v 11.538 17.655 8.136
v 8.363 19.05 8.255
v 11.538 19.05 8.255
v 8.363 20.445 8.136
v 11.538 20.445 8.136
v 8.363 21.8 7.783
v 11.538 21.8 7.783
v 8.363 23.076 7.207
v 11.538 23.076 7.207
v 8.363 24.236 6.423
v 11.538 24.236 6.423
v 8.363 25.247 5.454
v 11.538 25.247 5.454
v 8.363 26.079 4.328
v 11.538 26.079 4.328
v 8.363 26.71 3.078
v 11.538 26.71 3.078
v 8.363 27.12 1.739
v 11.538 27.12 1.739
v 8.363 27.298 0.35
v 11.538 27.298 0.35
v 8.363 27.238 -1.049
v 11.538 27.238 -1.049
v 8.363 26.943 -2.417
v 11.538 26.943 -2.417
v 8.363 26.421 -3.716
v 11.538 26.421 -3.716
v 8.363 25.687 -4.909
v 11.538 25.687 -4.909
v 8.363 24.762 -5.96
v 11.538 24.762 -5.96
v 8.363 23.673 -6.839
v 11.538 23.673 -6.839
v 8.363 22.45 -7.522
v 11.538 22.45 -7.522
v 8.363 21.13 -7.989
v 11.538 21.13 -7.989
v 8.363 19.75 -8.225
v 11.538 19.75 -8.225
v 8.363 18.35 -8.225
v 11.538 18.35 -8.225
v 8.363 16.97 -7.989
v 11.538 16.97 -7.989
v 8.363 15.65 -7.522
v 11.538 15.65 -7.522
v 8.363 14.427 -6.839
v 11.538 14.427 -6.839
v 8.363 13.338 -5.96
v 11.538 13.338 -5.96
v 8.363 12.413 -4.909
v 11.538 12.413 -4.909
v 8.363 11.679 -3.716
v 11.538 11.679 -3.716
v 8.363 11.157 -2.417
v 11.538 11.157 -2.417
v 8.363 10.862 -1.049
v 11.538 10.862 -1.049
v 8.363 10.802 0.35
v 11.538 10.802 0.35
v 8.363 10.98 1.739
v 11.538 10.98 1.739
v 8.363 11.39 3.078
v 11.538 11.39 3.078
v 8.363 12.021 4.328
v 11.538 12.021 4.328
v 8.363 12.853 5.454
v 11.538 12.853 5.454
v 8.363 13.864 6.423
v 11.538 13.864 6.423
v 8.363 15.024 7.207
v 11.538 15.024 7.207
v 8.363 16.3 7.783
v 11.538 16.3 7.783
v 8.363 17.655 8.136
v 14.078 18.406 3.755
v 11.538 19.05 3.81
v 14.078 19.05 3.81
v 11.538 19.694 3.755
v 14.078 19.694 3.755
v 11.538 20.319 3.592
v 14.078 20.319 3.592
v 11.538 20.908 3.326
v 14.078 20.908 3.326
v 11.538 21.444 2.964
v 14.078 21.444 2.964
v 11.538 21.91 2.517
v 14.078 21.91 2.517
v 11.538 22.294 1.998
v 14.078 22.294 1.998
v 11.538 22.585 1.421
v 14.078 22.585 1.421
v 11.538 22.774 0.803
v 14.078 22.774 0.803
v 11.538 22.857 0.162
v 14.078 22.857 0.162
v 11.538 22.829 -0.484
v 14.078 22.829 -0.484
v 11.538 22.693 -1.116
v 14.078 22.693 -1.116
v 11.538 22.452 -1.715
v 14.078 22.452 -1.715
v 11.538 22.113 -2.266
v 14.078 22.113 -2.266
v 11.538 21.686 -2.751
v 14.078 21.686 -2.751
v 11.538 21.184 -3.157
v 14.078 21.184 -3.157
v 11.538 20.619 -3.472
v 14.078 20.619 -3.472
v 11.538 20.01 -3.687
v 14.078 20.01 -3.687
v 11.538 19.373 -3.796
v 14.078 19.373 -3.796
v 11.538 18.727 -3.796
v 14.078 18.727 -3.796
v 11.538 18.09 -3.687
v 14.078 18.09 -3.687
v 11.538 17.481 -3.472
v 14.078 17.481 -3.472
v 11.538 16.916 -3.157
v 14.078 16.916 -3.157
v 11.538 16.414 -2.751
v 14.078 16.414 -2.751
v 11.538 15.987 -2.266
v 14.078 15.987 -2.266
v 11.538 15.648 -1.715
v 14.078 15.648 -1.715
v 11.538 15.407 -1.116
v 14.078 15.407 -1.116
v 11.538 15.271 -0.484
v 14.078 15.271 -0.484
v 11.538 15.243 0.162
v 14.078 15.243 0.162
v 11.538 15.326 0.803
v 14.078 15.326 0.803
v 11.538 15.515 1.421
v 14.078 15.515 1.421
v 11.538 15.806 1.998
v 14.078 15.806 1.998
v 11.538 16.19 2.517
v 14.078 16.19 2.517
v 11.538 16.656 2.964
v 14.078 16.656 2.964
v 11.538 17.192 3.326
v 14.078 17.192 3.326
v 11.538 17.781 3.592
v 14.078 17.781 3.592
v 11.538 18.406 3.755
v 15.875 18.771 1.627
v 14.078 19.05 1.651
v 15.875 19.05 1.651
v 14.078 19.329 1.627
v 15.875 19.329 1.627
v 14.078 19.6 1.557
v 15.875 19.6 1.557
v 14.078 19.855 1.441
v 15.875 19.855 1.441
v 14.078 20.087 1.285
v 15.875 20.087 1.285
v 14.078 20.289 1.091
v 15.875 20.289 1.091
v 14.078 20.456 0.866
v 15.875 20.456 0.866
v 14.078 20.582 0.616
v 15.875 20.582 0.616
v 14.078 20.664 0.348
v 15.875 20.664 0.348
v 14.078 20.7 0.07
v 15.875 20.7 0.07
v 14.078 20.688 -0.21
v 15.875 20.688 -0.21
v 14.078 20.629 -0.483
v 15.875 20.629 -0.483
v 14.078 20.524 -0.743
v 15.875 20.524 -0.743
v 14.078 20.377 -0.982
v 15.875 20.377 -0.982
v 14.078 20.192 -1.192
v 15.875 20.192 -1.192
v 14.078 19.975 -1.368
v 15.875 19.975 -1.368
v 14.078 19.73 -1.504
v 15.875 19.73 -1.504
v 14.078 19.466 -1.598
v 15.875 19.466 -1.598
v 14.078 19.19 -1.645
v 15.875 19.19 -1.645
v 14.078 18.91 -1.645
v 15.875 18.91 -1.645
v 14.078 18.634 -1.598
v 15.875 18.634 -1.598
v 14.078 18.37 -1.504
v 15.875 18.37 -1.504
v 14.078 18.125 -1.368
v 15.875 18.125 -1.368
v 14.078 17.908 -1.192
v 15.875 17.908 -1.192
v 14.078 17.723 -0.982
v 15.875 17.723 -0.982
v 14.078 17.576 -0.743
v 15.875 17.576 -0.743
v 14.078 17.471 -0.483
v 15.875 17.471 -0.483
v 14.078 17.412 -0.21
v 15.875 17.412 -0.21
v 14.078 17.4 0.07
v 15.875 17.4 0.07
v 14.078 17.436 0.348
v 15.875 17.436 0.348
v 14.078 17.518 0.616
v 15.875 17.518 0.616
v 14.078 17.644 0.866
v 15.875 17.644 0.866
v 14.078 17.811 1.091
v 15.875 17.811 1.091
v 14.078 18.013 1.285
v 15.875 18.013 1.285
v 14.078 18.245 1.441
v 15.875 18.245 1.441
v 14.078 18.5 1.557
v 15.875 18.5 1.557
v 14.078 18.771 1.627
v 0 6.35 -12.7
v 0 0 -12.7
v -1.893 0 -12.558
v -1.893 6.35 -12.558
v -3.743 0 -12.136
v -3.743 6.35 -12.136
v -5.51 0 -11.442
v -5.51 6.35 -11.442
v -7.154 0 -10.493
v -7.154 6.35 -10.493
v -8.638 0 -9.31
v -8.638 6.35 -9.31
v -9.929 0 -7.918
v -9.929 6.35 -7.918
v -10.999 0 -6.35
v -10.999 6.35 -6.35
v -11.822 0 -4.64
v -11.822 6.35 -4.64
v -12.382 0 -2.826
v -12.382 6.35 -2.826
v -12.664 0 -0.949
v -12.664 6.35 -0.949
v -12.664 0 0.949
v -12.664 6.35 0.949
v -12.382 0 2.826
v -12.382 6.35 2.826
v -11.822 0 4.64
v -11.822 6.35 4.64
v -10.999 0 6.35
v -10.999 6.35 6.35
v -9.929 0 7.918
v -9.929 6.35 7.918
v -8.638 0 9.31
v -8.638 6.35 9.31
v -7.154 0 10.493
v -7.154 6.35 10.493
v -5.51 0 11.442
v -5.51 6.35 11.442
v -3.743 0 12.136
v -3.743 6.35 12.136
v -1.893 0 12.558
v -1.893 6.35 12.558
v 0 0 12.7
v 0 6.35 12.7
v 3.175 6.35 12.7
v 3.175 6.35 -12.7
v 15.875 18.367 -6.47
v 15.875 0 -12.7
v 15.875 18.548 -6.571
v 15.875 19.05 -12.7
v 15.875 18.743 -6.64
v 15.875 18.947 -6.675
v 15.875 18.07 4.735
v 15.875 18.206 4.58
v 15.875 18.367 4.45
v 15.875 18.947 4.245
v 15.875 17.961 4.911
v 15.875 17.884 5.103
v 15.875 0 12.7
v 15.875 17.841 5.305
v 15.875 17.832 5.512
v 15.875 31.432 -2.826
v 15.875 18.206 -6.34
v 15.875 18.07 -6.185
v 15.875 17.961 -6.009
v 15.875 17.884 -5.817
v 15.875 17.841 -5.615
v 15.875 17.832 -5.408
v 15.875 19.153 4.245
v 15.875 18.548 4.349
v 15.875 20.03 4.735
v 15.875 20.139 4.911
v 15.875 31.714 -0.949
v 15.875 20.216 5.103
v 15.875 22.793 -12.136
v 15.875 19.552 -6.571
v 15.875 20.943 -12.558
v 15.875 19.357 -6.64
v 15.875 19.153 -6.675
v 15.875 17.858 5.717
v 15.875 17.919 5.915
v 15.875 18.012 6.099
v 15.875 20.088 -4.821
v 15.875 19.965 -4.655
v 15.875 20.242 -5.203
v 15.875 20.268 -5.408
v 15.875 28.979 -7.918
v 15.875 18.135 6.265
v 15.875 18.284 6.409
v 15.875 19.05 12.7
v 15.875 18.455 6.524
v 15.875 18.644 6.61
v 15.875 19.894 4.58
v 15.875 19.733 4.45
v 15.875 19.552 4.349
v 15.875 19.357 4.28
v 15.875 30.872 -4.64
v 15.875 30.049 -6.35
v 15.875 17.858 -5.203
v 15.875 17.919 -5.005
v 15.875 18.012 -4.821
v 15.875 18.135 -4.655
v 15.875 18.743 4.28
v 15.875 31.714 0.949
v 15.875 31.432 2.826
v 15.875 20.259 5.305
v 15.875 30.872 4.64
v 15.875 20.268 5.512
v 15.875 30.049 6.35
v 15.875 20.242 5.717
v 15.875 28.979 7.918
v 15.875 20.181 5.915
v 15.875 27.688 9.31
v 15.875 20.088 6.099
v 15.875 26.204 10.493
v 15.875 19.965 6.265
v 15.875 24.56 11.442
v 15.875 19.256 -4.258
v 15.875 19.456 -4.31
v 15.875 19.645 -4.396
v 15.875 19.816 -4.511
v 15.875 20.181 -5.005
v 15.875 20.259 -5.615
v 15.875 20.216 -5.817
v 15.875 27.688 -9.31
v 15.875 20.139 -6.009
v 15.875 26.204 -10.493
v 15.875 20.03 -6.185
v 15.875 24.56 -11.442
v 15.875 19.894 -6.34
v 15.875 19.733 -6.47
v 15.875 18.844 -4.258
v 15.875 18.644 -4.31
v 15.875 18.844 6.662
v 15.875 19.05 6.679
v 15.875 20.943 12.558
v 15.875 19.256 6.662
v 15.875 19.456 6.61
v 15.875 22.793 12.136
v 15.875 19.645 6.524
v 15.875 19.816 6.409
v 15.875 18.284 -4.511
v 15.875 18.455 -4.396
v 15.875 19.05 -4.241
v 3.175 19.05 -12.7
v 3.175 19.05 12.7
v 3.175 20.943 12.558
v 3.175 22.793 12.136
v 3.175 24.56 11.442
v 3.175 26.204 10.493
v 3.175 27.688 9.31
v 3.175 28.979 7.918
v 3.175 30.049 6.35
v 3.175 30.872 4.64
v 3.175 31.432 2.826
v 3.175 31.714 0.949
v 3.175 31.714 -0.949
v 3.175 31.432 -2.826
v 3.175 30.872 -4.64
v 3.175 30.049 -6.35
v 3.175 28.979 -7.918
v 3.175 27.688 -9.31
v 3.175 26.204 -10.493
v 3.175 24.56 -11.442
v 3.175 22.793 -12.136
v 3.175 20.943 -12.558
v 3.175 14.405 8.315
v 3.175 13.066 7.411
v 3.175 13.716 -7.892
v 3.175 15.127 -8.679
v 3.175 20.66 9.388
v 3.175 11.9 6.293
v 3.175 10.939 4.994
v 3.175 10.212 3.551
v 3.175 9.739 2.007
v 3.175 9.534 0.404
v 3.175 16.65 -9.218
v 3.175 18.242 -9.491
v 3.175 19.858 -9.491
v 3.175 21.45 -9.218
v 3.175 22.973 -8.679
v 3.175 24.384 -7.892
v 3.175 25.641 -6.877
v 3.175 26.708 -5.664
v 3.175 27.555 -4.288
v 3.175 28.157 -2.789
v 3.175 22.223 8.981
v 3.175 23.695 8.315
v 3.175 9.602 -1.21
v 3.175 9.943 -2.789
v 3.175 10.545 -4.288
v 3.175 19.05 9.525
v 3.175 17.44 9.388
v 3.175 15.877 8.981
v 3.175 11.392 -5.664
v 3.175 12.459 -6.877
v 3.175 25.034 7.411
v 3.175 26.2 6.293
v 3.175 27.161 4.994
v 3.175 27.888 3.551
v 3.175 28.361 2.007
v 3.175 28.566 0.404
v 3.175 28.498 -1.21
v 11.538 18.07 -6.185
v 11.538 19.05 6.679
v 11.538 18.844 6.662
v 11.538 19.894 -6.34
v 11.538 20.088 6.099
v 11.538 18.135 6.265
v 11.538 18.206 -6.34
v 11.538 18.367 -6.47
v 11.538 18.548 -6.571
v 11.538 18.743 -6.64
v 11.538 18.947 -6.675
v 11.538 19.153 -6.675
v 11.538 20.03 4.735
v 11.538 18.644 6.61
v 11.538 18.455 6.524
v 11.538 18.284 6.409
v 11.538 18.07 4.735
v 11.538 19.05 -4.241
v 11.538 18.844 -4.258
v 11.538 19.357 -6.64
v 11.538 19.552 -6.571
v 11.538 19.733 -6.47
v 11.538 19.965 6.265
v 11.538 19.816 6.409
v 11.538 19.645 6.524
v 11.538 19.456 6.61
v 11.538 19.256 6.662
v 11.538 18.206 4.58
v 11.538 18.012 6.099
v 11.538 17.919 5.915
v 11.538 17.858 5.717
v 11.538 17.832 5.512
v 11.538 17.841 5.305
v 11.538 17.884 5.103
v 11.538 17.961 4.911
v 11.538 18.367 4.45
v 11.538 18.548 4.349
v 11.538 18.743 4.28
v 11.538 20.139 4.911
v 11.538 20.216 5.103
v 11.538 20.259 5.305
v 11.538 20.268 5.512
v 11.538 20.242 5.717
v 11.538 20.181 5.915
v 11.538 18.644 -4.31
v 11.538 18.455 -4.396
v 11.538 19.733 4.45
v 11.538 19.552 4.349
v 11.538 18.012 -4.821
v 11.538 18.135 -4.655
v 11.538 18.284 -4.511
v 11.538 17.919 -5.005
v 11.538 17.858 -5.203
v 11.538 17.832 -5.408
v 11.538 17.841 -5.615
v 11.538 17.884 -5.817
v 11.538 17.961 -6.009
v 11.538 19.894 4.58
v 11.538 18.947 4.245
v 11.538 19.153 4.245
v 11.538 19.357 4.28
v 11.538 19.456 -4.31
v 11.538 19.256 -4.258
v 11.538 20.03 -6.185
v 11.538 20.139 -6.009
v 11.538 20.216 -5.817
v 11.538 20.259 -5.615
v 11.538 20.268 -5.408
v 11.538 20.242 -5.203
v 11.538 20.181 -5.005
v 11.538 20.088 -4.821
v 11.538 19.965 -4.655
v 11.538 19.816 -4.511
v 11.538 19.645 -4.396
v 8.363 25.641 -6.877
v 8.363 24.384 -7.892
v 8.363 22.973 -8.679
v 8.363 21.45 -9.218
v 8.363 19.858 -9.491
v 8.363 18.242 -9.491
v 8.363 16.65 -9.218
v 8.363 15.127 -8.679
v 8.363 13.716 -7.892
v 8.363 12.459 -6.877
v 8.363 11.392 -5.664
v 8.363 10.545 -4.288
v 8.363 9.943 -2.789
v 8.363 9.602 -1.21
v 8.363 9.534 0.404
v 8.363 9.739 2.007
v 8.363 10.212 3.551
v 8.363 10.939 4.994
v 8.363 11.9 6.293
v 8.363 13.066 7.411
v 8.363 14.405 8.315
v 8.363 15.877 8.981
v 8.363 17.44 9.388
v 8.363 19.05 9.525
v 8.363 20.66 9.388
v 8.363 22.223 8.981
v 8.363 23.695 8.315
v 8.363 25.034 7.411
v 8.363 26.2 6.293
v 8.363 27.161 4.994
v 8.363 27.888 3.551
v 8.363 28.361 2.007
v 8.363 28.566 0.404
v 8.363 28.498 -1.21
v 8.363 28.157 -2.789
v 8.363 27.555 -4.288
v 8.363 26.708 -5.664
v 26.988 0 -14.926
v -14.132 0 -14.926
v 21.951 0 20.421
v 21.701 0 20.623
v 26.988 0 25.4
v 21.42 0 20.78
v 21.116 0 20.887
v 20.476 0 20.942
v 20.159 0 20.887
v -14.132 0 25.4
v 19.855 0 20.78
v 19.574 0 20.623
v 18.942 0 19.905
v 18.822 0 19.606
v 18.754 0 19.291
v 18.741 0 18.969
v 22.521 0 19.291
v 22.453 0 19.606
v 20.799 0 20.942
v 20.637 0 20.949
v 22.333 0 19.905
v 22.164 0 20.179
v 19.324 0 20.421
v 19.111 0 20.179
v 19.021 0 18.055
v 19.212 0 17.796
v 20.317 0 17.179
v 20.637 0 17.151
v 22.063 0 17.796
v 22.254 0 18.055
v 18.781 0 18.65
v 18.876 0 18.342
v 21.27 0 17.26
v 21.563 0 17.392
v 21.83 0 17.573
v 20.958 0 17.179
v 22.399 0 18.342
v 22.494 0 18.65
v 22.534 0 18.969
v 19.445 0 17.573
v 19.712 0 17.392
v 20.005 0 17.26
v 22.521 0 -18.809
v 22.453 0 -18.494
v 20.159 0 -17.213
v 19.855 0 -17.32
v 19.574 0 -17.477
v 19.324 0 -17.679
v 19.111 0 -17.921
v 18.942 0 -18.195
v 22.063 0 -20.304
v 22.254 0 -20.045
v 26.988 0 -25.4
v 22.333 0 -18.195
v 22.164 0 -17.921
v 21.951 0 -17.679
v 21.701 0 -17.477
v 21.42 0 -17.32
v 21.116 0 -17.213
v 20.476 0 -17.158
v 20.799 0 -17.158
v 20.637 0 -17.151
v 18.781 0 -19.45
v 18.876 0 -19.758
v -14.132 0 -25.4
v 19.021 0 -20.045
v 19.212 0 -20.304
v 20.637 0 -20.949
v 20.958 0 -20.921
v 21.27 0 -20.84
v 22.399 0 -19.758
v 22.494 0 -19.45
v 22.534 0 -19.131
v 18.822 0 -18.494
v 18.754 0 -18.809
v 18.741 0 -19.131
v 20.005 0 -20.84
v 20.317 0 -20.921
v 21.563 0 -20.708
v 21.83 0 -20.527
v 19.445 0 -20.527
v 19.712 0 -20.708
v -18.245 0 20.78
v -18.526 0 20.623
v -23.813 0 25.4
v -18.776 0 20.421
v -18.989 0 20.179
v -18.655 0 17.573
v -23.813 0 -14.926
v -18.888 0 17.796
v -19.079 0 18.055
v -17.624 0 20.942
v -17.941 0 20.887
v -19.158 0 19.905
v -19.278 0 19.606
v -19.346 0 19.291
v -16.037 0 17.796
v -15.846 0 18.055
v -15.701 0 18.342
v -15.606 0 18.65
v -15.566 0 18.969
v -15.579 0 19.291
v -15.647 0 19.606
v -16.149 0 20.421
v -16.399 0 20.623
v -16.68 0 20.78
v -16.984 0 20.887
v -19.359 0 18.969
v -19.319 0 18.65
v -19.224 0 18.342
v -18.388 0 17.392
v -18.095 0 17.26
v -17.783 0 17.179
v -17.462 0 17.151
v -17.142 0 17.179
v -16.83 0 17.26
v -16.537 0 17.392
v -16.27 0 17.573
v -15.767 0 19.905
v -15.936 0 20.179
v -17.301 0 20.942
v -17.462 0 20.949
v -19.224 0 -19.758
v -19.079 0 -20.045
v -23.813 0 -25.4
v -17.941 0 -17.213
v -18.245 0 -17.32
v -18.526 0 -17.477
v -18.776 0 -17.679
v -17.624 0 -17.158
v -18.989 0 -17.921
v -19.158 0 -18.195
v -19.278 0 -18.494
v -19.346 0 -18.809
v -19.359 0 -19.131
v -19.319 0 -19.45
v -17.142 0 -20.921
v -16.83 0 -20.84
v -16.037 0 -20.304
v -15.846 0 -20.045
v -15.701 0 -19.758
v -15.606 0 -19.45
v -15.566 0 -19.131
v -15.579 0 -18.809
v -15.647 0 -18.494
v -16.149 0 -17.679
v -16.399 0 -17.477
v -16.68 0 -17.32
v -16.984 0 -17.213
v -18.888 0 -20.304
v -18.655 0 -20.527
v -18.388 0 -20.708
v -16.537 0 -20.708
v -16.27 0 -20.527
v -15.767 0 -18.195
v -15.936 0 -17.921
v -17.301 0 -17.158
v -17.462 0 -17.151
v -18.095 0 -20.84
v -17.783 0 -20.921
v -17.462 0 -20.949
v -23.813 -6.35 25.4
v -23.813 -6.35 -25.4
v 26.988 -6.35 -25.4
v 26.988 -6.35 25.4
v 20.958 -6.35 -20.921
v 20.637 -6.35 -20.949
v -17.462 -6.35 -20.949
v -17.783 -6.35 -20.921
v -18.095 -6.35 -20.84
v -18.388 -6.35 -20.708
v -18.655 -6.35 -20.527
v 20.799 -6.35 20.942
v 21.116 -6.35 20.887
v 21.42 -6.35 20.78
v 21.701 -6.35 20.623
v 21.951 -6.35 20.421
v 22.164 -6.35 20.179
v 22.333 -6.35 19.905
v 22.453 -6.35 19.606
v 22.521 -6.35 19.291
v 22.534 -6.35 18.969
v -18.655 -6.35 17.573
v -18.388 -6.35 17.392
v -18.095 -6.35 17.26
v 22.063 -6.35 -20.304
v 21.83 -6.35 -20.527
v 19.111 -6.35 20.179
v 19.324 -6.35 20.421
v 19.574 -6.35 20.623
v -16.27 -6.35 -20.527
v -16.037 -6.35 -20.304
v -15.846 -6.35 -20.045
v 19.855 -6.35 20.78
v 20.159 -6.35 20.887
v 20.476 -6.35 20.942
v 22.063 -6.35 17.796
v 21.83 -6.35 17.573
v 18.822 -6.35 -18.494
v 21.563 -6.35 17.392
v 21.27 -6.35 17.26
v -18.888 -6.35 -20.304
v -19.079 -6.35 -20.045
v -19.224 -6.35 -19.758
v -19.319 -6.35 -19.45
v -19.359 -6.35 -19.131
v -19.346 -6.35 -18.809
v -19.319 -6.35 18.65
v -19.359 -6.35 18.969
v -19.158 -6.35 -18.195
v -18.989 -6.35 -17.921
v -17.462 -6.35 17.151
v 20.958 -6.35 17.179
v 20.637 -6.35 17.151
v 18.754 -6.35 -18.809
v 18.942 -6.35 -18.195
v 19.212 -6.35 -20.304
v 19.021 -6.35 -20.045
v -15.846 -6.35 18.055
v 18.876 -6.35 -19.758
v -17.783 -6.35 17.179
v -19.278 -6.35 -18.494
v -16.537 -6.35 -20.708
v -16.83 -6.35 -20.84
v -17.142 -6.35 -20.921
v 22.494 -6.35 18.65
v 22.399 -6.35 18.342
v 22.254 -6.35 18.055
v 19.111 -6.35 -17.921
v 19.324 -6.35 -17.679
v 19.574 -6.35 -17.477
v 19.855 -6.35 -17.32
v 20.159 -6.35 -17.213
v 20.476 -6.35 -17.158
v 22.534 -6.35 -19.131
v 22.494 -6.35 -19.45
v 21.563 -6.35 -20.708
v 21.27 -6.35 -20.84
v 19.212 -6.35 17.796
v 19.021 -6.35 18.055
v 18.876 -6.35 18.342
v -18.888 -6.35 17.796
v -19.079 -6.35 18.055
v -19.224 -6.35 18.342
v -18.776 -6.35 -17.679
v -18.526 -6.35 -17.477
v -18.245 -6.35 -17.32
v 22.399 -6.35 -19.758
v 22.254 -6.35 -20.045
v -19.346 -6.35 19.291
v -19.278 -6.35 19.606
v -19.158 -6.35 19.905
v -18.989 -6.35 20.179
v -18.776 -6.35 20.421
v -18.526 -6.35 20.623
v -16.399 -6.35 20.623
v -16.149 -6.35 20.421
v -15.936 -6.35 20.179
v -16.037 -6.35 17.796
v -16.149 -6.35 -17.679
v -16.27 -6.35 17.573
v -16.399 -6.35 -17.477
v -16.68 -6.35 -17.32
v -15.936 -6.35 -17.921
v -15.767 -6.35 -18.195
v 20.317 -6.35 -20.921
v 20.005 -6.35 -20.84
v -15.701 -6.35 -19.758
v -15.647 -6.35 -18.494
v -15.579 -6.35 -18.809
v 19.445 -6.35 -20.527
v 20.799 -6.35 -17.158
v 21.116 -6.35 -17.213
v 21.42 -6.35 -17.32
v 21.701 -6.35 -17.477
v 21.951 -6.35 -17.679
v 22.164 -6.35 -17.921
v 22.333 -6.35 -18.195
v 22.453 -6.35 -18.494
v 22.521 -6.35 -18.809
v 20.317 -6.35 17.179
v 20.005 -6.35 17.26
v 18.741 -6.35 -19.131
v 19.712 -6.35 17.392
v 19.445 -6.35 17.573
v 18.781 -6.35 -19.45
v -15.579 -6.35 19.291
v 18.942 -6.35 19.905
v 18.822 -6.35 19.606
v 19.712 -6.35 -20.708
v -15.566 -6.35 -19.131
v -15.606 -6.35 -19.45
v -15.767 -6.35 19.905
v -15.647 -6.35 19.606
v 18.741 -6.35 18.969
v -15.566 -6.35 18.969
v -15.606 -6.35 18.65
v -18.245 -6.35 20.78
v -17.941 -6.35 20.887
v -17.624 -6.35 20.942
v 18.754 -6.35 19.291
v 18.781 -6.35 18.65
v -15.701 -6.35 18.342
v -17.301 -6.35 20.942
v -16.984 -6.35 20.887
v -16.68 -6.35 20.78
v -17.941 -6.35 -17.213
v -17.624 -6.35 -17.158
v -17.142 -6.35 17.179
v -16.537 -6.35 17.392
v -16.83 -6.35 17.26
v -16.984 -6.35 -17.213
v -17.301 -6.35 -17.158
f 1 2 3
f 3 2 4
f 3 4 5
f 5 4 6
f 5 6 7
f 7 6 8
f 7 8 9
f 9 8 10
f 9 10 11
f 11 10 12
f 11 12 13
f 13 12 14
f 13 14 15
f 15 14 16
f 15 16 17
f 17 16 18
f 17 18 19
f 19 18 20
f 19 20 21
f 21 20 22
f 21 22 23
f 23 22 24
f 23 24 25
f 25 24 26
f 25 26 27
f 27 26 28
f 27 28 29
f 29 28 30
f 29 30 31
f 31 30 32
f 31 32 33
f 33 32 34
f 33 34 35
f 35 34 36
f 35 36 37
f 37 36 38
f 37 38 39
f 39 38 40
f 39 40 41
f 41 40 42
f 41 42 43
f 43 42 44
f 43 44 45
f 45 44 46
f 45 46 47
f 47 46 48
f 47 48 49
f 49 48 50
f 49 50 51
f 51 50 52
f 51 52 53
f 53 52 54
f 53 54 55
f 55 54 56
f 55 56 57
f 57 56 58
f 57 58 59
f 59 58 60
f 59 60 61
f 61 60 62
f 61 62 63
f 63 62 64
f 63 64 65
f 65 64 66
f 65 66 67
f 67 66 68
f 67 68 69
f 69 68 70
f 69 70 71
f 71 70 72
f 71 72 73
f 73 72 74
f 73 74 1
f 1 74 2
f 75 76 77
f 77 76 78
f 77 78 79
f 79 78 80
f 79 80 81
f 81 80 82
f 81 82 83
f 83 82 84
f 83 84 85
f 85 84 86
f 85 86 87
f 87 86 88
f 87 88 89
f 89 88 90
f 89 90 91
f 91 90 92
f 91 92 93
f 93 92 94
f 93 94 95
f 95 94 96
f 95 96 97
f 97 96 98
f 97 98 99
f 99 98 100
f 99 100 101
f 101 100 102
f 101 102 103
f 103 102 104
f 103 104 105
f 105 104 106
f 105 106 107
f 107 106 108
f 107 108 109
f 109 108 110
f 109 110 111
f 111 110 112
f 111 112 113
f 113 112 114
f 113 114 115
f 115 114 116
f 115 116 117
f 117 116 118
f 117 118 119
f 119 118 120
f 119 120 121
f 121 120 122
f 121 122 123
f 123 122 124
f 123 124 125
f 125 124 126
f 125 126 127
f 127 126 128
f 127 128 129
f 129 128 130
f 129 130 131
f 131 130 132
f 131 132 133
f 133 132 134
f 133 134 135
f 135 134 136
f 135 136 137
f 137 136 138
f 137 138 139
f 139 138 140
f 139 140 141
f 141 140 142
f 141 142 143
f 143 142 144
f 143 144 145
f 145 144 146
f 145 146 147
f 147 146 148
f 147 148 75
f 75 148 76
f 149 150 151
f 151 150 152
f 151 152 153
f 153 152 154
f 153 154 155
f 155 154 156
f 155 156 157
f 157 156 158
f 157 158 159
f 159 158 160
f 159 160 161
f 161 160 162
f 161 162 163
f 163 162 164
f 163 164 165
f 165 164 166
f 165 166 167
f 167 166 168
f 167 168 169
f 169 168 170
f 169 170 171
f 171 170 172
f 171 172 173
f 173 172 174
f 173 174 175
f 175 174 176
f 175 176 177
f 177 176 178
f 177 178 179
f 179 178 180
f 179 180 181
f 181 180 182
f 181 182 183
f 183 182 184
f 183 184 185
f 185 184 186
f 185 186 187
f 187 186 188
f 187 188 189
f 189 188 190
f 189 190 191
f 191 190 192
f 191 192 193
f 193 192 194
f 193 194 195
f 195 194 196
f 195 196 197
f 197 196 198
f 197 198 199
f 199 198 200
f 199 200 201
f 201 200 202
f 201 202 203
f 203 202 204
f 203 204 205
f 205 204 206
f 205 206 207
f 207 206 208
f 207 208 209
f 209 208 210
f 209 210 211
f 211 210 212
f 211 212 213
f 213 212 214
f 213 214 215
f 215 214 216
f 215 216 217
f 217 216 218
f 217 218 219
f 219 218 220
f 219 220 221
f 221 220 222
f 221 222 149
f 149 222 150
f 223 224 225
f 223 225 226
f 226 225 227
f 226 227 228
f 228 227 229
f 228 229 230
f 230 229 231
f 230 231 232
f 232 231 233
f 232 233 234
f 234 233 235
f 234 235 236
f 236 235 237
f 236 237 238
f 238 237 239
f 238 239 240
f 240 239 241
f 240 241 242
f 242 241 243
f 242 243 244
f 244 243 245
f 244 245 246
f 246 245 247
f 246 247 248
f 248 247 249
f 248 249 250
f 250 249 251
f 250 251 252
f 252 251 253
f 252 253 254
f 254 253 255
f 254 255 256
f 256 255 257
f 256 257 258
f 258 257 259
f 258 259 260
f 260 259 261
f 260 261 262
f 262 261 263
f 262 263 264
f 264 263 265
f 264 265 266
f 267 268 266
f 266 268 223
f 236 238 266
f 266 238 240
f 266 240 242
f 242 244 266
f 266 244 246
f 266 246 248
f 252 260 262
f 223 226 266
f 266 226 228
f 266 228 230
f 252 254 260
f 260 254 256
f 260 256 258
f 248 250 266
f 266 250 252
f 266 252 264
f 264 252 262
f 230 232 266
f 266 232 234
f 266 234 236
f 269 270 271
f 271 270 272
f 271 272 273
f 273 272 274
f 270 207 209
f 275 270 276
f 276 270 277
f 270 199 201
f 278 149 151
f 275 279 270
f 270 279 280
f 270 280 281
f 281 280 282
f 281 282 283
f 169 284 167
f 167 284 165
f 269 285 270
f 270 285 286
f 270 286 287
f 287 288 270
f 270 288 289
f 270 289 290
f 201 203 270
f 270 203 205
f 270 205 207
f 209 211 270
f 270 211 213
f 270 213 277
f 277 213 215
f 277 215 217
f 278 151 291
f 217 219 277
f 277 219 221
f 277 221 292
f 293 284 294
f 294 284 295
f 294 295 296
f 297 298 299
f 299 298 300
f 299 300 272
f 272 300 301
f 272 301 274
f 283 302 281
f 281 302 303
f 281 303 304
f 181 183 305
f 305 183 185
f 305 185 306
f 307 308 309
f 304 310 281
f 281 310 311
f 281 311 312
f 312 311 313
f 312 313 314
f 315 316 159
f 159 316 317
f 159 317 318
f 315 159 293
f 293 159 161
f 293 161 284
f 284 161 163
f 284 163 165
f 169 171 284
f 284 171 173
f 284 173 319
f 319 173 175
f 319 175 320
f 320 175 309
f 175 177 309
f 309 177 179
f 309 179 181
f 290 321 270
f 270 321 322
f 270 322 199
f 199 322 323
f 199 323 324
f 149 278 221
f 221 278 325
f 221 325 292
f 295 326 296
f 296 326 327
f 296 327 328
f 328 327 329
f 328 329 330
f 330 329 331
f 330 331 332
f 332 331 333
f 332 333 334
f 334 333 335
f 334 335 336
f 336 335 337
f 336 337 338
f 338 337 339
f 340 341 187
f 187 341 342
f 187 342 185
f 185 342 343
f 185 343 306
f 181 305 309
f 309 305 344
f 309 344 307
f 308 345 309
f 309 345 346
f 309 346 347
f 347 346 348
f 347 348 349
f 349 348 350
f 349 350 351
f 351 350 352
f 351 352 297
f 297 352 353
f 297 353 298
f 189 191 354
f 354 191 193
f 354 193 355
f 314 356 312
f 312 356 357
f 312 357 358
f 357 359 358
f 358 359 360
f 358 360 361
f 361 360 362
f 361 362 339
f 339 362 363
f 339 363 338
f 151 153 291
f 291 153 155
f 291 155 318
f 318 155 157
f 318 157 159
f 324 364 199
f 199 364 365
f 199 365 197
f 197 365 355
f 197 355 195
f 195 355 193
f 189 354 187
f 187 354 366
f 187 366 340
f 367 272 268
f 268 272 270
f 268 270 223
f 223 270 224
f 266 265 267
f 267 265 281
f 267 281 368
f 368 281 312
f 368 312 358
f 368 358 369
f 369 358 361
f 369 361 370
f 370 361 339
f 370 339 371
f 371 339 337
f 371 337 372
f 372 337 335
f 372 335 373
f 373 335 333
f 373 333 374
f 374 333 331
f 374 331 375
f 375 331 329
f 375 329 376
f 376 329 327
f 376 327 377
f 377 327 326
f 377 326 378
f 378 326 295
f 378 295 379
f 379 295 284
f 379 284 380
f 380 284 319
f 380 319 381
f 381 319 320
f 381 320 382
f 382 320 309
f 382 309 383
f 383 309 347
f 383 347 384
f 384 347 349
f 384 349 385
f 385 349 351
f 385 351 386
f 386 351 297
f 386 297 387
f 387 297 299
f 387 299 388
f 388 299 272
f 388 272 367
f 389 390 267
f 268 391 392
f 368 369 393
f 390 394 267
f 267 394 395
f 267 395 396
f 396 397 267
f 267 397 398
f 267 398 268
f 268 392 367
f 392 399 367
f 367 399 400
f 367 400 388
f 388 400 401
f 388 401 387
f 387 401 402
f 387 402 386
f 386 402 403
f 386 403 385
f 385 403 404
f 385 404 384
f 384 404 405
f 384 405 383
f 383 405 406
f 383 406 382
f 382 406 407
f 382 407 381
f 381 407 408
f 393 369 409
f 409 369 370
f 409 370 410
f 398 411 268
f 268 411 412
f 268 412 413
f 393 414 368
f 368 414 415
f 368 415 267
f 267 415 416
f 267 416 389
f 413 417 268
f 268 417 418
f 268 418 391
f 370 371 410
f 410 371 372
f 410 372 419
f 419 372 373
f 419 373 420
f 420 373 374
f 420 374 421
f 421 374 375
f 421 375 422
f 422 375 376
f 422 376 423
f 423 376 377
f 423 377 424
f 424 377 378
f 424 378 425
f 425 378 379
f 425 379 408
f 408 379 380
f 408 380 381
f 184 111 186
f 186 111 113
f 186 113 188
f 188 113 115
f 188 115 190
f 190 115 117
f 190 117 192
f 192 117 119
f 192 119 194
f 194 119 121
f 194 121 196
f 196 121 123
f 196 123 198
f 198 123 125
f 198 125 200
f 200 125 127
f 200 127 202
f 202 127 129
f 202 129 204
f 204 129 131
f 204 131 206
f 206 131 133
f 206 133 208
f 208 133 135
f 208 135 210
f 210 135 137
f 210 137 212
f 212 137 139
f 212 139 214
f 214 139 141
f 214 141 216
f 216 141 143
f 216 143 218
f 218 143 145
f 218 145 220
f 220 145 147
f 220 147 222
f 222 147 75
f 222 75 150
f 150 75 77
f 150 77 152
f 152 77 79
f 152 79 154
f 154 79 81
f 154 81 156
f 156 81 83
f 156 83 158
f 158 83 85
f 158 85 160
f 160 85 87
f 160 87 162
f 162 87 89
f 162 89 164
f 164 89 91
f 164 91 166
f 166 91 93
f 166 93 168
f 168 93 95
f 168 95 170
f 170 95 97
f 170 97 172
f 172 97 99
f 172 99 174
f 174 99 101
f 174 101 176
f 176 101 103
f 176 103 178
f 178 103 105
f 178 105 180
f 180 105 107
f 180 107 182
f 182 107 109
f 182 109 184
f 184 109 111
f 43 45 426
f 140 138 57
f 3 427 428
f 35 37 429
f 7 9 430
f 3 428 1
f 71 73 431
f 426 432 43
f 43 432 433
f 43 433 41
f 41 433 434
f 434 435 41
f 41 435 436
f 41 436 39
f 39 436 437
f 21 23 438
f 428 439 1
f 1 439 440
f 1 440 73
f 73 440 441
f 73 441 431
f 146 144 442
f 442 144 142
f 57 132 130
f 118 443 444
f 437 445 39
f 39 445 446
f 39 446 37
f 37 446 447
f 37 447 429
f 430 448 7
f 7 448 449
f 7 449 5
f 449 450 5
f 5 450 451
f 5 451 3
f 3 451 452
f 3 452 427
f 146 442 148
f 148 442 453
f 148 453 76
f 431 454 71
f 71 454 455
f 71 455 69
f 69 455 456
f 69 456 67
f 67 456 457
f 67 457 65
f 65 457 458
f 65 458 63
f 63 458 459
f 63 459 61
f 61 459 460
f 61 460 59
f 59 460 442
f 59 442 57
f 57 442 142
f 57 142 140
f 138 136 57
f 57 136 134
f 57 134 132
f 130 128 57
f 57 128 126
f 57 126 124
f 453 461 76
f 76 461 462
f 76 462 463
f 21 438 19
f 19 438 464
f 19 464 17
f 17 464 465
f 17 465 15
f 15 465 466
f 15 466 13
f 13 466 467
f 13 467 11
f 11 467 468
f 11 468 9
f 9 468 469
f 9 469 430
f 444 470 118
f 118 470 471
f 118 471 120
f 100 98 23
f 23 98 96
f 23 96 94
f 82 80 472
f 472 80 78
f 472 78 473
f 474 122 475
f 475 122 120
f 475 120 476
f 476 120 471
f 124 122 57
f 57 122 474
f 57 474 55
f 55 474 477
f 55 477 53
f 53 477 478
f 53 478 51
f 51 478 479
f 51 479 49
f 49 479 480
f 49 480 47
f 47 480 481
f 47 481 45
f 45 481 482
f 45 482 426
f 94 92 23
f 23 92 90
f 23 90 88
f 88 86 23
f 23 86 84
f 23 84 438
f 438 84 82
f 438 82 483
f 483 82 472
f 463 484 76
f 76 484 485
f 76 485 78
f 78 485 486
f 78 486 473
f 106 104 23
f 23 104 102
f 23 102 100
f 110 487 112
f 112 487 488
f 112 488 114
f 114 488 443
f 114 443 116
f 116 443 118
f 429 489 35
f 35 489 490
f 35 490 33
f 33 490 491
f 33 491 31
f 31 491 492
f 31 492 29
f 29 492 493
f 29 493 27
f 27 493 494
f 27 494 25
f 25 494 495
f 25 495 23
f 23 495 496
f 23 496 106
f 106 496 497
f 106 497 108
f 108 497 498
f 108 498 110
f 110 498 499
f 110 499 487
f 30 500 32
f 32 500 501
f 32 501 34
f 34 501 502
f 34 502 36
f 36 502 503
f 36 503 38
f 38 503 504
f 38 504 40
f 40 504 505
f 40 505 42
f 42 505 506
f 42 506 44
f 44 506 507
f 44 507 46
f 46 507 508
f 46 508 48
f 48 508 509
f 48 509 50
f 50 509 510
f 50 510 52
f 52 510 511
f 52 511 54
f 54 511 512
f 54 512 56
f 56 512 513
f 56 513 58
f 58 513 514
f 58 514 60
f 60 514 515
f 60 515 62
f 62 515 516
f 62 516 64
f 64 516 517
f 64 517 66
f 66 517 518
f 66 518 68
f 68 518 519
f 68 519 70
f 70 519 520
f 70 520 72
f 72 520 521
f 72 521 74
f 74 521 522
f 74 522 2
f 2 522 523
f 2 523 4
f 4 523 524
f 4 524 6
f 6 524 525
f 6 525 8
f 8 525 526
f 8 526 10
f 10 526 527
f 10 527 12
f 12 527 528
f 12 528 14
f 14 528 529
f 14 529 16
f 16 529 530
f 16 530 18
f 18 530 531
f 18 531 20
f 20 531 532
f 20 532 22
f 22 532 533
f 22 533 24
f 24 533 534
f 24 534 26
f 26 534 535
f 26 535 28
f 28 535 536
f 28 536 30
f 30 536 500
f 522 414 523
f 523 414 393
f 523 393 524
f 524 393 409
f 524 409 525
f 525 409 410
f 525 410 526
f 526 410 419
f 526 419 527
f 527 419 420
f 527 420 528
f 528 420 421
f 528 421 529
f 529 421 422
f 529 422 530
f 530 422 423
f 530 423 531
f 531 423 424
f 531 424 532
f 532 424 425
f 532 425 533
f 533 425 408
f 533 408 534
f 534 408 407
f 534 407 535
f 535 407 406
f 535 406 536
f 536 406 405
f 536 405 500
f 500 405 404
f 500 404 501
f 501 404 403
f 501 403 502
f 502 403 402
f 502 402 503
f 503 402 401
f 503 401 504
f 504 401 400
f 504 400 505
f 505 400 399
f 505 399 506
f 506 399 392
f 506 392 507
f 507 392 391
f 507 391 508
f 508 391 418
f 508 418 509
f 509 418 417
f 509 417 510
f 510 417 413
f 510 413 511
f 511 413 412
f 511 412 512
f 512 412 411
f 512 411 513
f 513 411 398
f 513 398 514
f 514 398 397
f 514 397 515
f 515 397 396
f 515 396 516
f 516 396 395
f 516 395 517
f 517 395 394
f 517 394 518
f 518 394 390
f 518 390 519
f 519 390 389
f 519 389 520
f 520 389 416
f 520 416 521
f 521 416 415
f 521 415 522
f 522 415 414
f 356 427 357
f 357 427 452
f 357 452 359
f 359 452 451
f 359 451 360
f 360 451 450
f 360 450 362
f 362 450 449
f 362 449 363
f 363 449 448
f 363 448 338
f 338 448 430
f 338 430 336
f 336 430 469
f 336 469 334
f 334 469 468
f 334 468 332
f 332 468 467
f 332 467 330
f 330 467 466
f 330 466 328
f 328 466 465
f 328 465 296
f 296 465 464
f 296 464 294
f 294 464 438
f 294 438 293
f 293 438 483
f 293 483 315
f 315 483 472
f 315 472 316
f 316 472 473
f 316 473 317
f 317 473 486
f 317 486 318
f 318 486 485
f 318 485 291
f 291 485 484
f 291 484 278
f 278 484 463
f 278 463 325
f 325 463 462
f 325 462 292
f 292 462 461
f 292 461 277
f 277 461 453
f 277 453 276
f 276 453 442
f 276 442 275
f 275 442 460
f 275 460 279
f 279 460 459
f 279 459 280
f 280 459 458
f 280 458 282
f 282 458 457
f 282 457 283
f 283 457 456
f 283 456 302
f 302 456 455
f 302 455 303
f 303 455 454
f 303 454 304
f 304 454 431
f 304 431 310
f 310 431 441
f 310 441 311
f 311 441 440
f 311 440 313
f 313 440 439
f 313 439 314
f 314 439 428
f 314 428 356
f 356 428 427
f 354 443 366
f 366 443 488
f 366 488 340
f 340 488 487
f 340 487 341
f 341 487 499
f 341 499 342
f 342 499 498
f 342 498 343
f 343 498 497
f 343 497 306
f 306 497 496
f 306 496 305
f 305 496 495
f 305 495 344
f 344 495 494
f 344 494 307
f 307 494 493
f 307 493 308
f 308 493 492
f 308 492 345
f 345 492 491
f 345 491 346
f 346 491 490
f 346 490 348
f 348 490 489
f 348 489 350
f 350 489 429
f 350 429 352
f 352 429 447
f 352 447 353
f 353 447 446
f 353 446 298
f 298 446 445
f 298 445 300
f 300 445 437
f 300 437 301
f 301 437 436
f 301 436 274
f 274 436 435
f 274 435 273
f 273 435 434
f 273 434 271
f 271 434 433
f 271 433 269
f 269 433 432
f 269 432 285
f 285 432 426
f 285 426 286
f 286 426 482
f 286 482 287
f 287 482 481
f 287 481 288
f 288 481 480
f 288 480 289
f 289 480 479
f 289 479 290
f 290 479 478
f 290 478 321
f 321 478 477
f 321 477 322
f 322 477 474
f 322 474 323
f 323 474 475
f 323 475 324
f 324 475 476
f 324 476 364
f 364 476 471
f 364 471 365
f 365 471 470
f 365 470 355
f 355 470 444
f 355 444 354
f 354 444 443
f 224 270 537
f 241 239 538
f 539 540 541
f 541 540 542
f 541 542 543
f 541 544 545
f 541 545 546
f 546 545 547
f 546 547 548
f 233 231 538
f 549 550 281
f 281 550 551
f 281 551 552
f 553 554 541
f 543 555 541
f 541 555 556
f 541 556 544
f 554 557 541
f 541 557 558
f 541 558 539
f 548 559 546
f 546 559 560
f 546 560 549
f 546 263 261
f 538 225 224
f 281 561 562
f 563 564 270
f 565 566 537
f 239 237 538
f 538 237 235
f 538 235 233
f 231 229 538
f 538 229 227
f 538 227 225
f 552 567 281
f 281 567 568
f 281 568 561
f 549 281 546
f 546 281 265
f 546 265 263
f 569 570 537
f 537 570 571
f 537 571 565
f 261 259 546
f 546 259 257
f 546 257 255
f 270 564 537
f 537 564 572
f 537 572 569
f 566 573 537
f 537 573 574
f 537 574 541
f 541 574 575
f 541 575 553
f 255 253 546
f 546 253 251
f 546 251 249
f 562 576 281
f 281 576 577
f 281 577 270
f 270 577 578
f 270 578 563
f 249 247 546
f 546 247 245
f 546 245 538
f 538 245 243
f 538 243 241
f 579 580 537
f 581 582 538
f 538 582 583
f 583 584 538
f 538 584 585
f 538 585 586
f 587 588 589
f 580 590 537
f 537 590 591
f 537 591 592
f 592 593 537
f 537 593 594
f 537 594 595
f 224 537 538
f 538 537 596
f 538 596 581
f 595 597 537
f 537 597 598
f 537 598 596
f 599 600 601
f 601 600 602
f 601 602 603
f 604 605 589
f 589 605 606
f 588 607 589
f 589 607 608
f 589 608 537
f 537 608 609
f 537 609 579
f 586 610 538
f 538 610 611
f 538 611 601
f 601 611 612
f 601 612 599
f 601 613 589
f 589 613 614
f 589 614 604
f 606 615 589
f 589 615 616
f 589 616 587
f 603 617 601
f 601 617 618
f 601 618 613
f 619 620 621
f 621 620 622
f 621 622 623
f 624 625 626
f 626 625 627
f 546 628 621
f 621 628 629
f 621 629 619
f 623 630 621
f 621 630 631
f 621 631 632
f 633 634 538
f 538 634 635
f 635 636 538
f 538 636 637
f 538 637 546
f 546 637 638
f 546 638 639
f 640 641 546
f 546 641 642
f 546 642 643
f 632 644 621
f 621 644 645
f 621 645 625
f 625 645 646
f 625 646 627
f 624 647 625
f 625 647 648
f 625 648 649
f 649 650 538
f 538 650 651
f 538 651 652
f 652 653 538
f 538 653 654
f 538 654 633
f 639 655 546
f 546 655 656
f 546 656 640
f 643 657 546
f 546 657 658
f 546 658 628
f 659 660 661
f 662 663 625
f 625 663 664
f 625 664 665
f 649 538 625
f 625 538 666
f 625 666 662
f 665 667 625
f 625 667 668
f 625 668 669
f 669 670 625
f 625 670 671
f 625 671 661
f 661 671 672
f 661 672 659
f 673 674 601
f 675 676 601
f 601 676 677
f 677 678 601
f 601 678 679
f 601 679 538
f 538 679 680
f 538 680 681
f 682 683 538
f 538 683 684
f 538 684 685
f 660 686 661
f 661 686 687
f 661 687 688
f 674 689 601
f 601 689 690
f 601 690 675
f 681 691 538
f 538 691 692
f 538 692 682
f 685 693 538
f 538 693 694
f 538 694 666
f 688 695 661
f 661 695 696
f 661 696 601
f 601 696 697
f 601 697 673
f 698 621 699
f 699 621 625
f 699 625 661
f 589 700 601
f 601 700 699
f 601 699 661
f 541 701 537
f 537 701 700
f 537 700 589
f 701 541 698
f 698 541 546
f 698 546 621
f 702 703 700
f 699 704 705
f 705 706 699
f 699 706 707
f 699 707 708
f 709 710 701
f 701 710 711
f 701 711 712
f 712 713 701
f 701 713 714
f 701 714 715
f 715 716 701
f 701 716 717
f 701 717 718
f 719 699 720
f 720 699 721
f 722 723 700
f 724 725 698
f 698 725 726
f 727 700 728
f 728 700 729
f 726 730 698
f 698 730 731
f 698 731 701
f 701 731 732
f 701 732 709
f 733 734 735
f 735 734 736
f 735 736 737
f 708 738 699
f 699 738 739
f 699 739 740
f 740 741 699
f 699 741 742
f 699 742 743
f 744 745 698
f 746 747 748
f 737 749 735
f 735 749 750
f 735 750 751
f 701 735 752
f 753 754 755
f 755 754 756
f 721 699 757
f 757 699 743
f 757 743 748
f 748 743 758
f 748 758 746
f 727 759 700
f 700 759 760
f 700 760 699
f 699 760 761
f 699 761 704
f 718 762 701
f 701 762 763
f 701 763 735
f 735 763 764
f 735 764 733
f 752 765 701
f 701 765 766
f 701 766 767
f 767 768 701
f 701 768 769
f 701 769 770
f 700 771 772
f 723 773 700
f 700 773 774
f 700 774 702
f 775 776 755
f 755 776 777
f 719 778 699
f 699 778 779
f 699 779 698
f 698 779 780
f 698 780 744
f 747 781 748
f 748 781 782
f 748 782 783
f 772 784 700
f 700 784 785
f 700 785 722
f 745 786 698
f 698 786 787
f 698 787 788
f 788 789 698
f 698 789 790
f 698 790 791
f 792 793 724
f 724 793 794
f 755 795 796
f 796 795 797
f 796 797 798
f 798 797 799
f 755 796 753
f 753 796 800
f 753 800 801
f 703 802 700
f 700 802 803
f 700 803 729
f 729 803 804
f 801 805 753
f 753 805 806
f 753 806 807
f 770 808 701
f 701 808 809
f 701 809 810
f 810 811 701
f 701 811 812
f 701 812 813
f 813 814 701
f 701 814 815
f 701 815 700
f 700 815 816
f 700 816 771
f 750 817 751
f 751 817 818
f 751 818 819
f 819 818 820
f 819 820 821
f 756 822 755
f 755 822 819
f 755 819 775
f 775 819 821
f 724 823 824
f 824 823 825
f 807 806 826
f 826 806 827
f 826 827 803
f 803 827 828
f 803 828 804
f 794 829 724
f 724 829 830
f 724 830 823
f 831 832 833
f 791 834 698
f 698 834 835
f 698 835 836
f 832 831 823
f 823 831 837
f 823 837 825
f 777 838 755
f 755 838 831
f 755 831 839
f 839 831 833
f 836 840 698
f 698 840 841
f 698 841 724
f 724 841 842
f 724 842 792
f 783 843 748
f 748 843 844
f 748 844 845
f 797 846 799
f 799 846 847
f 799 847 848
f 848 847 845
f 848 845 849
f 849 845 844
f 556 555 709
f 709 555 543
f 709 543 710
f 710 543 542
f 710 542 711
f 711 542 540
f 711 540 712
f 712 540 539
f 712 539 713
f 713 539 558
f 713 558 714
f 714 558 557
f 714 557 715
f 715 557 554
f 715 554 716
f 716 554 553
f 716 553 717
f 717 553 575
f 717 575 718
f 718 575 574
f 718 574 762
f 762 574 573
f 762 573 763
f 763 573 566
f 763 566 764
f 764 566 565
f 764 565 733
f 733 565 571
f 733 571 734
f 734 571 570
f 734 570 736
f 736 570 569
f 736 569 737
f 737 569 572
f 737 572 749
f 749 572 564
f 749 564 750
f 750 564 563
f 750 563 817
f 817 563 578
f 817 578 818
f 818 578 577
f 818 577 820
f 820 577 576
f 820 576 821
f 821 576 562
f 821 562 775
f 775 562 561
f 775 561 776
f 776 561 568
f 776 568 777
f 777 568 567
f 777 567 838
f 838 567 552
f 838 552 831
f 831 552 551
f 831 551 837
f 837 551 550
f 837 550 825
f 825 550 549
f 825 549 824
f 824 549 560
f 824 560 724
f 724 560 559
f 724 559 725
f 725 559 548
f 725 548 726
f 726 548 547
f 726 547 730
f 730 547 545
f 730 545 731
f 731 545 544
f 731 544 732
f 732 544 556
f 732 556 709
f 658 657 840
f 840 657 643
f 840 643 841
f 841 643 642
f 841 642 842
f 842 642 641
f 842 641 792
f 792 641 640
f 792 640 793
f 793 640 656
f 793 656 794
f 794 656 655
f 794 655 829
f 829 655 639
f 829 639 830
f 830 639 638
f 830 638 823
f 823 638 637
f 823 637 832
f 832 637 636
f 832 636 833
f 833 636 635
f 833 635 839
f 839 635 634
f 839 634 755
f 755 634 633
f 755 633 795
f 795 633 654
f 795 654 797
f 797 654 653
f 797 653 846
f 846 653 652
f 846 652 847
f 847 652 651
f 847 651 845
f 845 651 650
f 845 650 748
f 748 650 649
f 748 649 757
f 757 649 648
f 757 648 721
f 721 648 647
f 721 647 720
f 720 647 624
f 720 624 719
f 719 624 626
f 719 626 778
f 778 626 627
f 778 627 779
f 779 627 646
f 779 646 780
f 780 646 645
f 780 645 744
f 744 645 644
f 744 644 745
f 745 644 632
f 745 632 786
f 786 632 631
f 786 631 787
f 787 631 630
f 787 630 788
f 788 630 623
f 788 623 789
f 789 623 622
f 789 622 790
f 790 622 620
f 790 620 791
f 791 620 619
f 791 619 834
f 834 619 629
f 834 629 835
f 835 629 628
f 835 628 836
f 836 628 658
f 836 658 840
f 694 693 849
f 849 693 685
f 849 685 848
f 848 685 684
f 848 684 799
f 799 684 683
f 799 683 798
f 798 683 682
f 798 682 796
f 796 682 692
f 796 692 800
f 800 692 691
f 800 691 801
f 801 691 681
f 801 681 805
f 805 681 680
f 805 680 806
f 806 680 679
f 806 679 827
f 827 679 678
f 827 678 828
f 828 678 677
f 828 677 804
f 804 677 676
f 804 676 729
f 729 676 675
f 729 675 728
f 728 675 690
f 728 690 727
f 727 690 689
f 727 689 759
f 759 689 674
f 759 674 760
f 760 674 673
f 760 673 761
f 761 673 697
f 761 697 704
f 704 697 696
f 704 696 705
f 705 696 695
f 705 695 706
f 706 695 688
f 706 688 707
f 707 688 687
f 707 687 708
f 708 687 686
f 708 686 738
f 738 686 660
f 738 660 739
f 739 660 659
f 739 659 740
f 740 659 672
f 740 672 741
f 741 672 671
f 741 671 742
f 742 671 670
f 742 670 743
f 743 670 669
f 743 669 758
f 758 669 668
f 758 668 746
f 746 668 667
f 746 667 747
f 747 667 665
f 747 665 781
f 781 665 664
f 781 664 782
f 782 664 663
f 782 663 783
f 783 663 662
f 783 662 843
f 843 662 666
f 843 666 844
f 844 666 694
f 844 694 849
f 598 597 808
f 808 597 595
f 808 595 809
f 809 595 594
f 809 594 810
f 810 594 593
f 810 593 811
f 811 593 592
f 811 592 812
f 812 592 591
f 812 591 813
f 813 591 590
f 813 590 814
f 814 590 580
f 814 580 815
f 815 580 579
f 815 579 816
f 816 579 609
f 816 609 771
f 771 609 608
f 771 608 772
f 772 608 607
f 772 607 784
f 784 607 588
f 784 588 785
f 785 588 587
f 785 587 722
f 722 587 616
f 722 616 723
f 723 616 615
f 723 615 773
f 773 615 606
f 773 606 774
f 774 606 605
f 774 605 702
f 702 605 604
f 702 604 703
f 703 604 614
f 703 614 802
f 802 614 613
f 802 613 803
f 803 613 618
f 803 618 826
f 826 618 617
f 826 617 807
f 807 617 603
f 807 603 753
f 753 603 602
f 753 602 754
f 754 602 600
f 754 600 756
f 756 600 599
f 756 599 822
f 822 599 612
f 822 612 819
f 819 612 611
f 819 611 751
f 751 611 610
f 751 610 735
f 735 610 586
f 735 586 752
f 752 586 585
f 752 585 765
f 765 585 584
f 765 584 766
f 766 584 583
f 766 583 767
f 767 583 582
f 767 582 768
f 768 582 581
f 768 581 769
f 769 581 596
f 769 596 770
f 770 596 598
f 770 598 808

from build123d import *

# Parameters (mm, degrees)
SKETCH1_R                 = 12.7
BOSS_EXTRUDE1_DEPTH       = 6.35
BOSS_EXTRUDE6_START       = -6.35
BOSS_EXTRUDE6_DEPTH       = 6.35
SKETCH15_R                = 12.7
BOSS_EXTRUDE8_DEPTH       = 12.7
SKETCH17_R                = 1.651
CUT_EXTRUDE4_DEPTH        = 12.7
SKETCH18_R                = 3.81
CUT_EXTRUDE5_DEPTH        = 10.9027722
SKETCH19_R                = 8.255
CUT_EXTRUDE6_DEPTH        = 8.3627722
SKETCH20_R                = 9.525
CUT_EXTRUDE7_DEPTH        = 5.1877722
SKETCH21_R                = 1.2192
CUT_EXTRUDE8_DEPTH        = 4.3372278
SKETCH22_W                = 50.8
SKETCH22_H                = 50.8
BOSS_EXTRUDE9_DEPTH       = 6.35
F_6_CLEARANCE_HOLE1_D     = 3.7973
F_6_CLEARANCE_HOLE1_DEPTH = 25.4
F_6_CLEARANCE_HOLE1_TIP   = 1.140824014


with BuildPart() as part:
    # Sketch1 → Boss-Extrude1 (new body)
    with BuildSketch(Plane(origin=(0, 0, 0), x_dir=(1, 0, 0), z_dir=(0, 1, 0))):
        with Locations(Location((0, 0, 0), (0, 0, 270))):
            Circle(SKETCH1_R)
    extrude(amount=BOSS_EXTRUDE1_DEPTH)

    # Sketch14 → Boss-Extrude6 (add)
    with BuildSketch(Plane(origin=(0, 6.35, 0), x_dir=(1, 0, 0), z_dir=(0, 1, 0)).offset(BOSS_EXTRUDE6_START)):
        with BuildLine():
            Line((15.875, 12.7), (0, 12.7))
            ThreePointArc((0, 12.7), (8.980256121, 8.980256121), (12.7, 0))
            ThreePointArc((12.7, 0), (8.980256121, -8.980256121), (0, -12.7))
            Line((0, -12.7), (15.875, -12.7))
            Line((15.875, -12.7), (15.875, 12.7))
        make_face()
    extrude(amount=BOSS_EXTRUDE6_DEPTH)

    # Sketch15 → Boss-Extrude8 (add)
    with BuildSketch(Plane(origin=(15.875, 0, 0), x_dir=(0, 0, -1), z_dir=(1, 0, 0))):
        with Locations((0, 19.05)):
            Circle(SKETCH15_R)
        with BuildLine():
            ThreePointArc((-3e-08, 6.35), (-8.980256132, 10.06974389), (-12.7, 19.05))
            Line((-12.7, 19.05), (-12.7, 6.35))
            Line((-12.7, 6.35), (-3e-08, 6.35))
        make_face()
        with BuildLine():
            Line((12.7, 6.35), (12.7, 19.05))
            ThreePointArc((12.7, 19.05), (8.98025611, 10.069743868), (-3e-08, 6.35))
            Line((-3e-08, 6.35), (12.7, 6.35))
        make_face()
    extrude(amount=-BOSS_EXTRUDE8_DEPTH)

    # Sketch17 → Cut-Extrude4 (cut)
    with BuildSketch(Plane.ZY.offset(-3.175)):
        with Locations((0, 19.05)):
            Circle(SKETCH17_R)
    extrude(amount=-CUT_EXTRUDE4_DEPTH, mode=Mode.SUBTRACT)

    # Sketch18 → Cut-Extrude5 (cut)
    with BuildSketch(Plane.ZY.offset(-3.175)):
        with Locations((0, 19.05)):
            Circle(SKETCH18_R)
    extrude(amount=-CUT_EXTRUDE5_DEPTH, mode=Mode.SUBTRACT)

    # Sketch19 → Cut-Extrude6 (cut)
    with BuildSketch(Plane.ZY.offset(-3.175)):
        with Locations((0, 19.05)):
            Circle(SKETCH19_R)
    extrude(amount=-CUT_EXTRUDE6_DEPTH, mode=Mode.SUBTRACT)

    # Sketch20 → Cut-Extrude7 (cut)
    with BuildSketch(Plane.ZY.offset(-3.175)):
        with Locations((0, 19.05)):
            Circle(SKETCH20_R)
    extrude(amount=-CUT_EXTRUDE7_DEPTH, mode=Mode.SUBTRACT)

    # Sketch21 → Cut-Extrude8 (cut)
    with BuildSketch(Plane.ZY.offset(-11.5377722)):
        with Locations((5.4599967, 19.05)):
            Circle(SKETCH21_R)
        with Locations((-5.4599967, 19.05)):
            Circle(SKETCH21_R)
    extrude(amount=-CUT_EXTRUDE8_DEPTH, mode=Mode.SUBTRACT)

    # Sketch22 → Boss-Extrude9 (add)
    with BuildSketch(Plane.XZ):
        with Locations((1.5875, 0)):
            Rectangle(SKETCH22_W, SKETCH22_H)
    extrude(amount=BOSS_EXTRUDE9_DEPTH)

    # #6 Clearance Hole1
    with Locations(Plane(origin=(0, -6.35, 0), x_dir=(-1, 0, 0), z_dir=(0, -1, 0))):
        with Locations((-20.6375, 19.05), (17.4625, 19.05), (17.4625, -19.05), (-20.6375, -19.05)):
            Hole(F_6_CLEARANCE_HOLE1_D / 2, depth=F_6_CLEARANCE_HOLE1_DEPTH)
            with Locations((0, 0, -(F_6_CLEARANCE_HOLE1_DEPTH + F_6_CLEARANCE_HOLE1_TIP / 2))):  # 118° drill point
                Cone(0, F_6_CLEARANCE_HOLE1_D / 2, F_6_CLEARANCE_HOLE1_TIP, mode=Mode.SUBTRACT)


solid = part.part
